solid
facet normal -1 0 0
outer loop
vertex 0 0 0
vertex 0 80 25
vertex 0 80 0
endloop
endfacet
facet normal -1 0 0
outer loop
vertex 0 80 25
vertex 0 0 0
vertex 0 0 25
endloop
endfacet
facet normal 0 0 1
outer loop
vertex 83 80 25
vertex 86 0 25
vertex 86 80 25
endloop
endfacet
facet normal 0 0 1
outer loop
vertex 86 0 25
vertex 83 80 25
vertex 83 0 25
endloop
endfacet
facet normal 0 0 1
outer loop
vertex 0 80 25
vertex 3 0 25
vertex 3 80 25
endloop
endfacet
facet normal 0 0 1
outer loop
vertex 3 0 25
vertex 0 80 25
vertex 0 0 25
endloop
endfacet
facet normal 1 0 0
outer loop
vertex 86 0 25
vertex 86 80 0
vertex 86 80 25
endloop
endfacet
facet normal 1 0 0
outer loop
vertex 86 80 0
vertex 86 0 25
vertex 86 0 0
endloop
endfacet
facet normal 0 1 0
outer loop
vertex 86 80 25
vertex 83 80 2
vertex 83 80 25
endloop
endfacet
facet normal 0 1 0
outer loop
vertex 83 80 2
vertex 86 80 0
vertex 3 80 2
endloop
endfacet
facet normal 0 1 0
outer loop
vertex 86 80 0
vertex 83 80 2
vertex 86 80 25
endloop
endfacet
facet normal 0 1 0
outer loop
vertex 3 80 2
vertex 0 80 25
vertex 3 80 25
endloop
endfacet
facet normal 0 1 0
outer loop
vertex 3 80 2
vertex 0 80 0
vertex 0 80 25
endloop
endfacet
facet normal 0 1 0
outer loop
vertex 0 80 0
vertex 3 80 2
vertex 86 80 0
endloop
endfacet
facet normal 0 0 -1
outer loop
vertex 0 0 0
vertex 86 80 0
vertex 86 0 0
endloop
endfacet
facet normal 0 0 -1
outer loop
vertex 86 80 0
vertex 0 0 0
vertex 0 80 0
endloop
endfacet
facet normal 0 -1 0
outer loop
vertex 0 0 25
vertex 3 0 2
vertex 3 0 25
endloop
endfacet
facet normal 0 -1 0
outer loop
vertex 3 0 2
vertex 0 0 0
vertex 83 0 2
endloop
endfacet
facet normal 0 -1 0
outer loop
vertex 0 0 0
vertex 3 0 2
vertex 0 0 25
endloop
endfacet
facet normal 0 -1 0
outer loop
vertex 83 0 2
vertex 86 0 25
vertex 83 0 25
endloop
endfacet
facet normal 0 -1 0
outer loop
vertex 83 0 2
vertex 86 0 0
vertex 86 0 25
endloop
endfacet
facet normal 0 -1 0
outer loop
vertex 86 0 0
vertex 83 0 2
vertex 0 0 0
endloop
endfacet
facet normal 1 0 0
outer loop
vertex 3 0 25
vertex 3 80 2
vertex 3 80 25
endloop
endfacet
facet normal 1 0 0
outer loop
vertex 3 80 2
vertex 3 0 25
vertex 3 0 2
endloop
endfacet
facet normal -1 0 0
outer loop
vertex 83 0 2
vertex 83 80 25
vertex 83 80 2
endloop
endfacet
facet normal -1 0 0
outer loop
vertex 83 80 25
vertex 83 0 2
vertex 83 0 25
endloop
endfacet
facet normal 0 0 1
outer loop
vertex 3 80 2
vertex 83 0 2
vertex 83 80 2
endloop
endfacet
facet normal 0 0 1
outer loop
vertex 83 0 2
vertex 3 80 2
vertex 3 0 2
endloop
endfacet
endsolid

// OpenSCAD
$fa = 1;                // Quality: minimum angle for a fragment.
$fs = 0.4;              // Quality: minimum size of a fragment.

// Object major dimensions.
slot = 80;              // cube partition width
wall = 3;               // object wall thickness
base = 2;               // bottom thickness
height = 25;
length = 80;
smidge = 0.01;         // a small offset to guarantee overlap

difference()
{
    cube([wall+slot+wall, length, height], center=false);
    translate([wall, -smidge, base])
        cube([slot, length+2*smidge, height], center=false);
}
